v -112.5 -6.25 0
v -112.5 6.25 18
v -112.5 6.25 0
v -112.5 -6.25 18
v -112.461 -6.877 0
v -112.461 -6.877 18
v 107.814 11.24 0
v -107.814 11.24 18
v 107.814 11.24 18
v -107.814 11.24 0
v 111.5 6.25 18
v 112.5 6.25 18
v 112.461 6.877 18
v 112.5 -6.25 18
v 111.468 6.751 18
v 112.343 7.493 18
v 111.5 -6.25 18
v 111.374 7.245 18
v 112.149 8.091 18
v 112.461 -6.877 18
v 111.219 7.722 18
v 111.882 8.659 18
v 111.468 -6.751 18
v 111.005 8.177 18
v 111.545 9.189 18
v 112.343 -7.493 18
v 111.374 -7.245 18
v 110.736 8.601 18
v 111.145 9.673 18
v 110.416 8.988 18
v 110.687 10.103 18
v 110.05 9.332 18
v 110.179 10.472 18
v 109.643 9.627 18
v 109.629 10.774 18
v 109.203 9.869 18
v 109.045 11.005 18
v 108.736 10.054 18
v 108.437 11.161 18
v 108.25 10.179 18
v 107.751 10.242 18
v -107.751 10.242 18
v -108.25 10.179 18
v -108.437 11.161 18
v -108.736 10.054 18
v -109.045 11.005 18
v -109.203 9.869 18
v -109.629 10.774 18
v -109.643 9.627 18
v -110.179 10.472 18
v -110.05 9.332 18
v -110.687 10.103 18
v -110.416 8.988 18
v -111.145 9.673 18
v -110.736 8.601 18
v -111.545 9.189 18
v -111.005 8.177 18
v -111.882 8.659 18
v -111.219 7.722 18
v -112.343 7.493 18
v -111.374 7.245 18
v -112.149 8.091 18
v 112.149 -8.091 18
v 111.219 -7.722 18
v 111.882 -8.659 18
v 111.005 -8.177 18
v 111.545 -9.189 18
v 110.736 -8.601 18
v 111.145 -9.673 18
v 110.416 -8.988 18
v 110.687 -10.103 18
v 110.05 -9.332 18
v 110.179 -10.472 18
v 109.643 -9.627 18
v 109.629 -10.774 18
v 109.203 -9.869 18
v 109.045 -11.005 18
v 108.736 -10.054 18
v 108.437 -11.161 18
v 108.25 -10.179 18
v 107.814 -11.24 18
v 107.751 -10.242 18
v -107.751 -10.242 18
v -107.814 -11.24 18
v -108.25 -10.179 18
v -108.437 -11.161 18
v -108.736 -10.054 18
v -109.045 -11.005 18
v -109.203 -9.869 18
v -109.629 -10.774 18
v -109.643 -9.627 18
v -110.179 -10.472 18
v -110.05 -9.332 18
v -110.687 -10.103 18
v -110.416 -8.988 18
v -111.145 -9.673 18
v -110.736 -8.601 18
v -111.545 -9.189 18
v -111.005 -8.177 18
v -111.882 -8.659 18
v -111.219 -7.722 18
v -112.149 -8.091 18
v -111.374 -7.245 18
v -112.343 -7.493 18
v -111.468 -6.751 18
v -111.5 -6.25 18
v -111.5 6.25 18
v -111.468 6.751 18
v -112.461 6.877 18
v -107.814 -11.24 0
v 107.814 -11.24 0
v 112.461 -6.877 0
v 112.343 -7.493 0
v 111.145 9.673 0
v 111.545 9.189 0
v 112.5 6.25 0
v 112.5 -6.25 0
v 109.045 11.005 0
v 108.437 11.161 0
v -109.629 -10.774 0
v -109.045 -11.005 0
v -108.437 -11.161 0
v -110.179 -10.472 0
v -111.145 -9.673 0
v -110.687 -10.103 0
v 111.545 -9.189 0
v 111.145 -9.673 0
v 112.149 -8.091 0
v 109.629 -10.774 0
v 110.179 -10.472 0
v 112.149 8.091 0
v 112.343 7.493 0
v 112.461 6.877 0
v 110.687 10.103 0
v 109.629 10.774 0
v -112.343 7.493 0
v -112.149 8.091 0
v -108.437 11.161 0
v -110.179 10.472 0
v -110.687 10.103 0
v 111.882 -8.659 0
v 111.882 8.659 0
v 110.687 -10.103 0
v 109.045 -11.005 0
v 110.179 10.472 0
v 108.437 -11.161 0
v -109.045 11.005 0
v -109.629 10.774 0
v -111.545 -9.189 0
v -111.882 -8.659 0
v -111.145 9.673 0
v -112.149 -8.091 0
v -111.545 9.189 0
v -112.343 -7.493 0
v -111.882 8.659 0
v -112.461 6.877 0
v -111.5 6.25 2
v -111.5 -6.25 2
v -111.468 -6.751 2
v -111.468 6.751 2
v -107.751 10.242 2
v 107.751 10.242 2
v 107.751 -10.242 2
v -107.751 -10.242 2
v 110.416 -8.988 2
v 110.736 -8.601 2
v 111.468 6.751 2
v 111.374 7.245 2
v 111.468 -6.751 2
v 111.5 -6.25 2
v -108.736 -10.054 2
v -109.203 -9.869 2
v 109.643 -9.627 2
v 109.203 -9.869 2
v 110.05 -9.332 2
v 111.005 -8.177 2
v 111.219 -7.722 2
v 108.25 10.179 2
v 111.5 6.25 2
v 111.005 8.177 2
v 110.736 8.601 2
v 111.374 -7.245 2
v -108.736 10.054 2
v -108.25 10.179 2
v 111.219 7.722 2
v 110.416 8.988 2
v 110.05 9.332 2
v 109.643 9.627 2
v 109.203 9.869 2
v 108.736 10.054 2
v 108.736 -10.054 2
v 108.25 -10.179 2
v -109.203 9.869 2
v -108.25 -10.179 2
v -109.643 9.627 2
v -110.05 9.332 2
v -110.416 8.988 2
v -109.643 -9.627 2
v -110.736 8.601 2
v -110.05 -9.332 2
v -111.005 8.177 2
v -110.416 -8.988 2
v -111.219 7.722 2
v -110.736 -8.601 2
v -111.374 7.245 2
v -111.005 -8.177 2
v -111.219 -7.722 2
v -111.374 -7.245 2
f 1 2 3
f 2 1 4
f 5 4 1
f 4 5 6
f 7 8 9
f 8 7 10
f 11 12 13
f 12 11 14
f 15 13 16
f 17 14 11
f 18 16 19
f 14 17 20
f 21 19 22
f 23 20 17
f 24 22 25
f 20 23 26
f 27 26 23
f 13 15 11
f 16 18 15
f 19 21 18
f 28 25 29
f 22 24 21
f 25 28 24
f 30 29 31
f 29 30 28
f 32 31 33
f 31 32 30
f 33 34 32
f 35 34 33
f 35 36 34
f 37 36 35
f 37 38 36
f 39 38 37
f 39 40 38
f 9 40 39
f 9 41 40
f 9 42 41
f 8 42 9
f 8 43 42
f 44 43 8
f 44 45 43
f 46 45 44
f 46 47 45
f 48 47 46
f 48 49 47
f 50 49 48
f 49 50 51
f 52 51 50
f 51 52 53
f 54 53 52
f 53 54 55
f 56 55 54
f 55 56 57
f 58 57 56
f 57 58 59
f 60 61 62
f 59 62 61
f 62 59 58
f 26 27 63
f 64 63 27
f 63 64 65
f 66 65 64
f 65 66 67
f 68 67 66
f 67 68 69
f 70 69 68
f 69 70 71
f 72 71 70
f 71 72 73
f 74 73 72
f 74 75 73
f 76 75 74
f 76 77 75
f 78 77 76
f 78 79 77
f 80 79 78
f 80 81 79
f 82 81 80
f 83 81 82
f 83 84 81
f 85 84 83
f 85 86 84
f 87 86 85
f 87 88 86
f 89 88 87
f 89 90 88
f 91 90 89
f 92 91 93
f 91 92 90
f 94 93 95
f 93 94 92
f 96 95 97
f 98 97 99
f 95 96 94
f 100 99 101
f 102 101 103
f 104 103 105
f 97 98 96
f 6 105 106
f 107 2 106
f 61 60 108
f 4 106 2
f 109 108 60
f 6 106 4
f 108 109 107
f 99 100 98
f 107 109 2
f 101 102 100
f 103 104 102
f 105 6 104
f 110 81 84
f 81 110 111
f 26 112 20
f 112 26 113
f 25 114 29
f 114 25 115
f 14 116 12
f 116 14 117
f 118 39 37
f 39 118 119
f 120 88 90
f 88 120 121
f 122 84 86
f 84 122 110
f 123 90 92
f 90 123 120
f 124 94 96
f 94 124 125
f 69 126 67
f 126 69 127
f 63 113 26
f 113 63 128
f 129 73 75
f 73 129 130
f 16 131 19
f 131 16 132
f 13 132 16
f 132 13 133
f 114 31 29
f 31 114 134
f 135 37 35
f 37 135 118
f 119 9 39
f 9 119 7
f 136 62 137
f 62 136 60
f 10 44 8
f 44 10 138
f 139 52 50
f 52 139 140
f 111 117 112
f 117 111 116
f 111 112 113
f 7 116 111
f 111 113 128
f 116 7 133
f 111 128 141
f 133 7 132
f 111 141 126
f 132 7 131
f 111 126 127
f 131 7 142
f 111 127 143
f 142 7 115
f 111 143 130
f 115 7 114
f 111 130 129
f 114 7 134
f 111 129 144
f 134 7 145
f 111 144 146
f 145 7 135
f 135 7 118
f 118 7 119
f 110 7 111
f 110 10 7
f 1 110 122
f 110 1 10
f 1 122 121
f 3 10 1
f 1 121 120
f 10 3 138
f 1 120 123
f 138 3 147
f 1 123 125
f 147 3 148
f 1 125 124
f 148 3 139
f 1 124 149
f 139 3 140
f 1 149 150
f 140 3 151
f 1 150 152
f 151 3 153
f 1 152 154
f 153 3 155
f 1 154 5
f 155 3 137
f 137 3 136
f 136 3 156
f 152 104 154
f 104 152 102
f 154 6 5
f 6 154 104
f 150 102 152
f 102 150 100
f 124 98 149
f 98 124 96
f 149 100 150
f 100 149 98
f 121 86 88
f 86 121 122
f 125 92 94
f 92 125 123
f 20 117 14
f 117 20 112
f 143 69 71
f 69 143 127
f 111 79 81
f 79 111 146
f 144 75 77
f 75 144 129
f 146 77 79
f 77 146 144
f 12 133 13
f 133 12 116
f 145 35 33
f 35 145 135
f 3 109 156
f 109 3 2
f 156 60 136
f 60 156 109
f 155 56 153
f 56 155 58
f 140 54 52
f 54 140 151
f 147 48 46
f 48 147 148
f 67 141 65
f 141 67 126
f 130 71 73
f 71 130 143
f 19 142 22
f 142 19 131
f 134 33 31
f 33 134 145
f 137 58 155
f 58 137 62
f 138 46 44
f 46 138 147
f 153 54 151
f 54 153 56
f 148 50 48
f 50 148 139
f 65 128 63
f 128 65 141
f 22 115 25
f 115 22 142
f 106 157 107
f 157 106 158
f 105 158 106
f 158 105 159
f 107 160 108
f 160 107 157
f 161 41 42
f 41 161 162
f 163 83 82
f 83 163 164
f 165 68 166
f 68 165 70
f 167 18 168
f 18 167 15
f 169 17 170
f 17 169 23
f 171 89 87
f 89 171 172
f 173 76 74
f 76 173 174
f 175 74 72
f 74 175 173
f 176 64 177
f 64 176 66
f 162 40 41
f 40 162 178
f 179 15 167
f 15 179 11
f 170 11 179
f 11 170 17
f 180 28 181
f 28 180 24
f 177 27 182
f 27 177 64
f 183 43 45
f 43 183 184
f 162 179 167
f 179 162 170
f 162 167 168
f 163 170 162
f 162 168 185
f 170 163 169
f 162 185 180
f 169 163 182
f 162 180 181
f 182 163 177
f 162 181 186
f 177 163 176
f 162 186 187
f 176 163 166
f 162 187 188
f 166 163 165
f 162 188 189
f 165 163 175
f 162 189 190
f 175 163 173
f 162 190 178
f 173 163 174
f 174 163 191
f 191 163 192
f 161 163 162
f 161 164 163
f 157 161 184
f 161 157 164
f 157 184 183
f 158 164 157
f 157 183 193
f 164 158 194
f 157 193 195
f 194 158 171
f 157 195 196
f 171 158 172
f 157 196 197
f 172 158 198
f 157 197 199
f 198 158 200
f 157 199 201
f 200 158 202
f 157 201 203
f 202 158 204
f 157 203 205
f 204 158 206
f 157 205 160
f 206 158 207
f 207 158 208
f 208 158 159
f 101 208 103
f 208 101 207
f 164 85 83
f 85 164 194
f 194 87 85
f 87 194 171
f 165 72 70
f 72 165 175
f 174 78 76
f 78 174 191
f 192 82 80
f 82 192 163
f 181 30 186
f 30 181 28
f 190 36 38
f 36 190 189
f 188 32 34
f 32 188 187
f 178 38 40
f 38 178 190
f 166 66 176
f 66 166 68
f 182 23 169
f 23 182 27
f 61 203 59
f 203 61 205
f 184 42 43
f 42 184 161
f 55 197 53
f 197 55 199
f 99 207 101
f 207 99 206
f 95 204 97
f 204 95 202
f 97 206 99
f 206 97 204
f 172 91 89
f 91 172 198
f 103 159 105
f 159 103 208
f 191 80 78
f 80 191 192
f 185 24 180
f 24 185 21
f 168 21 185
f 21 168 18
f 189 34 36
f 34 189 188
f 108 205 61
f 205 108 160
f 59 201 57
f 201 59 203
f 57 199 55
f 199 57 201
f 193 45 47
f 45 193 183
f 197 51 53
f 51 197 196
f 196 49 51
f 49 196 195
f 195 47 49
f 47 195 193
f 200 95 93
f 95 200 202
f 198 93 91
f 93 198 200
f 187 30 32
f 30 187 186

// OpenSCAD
$fn = 50;


difference() {
	union() {
		hull() {
			translate(v = [-107.5000000000, 6.2500000000, 0]) {
				cylinder(h = 18, r = 5);
			}
			translate(v = [107.5000000000, 6.2500000000, 0]) {
				cylinder(h = 18, r = 5);
			}
			translate(v = [-107.5000000000, -6.2500000000, 0]) {
				cylinder(h = 18, r = 5);
			}
			translate(v = [107.5000000000, -6.2500000000, 0]) {
				cylinder(h = 18, r = 5);
			}
		}
	}
	union() {
		translate(v = [0, 0, 2]) {
			hull() {
				translate(v = [-107.5000000000, 6.2500000000, 0]) {
					cylinder(h = 16, r = 4);
				}
				translate(v = [107.5000000000, 6.2500000000, 0]) {
					cylinder(h = 16, r = 4);
				}
				translate(v = [-107.5000000000, -6.2500000000, 0]) {
					cylinder(h = 16, r = 4);
				}
				translate(v = [107.5000000000, -6.2500000000, 0]) {
					cylinder(h = 16, r = 4);
				}
			}
		}
	}
}
